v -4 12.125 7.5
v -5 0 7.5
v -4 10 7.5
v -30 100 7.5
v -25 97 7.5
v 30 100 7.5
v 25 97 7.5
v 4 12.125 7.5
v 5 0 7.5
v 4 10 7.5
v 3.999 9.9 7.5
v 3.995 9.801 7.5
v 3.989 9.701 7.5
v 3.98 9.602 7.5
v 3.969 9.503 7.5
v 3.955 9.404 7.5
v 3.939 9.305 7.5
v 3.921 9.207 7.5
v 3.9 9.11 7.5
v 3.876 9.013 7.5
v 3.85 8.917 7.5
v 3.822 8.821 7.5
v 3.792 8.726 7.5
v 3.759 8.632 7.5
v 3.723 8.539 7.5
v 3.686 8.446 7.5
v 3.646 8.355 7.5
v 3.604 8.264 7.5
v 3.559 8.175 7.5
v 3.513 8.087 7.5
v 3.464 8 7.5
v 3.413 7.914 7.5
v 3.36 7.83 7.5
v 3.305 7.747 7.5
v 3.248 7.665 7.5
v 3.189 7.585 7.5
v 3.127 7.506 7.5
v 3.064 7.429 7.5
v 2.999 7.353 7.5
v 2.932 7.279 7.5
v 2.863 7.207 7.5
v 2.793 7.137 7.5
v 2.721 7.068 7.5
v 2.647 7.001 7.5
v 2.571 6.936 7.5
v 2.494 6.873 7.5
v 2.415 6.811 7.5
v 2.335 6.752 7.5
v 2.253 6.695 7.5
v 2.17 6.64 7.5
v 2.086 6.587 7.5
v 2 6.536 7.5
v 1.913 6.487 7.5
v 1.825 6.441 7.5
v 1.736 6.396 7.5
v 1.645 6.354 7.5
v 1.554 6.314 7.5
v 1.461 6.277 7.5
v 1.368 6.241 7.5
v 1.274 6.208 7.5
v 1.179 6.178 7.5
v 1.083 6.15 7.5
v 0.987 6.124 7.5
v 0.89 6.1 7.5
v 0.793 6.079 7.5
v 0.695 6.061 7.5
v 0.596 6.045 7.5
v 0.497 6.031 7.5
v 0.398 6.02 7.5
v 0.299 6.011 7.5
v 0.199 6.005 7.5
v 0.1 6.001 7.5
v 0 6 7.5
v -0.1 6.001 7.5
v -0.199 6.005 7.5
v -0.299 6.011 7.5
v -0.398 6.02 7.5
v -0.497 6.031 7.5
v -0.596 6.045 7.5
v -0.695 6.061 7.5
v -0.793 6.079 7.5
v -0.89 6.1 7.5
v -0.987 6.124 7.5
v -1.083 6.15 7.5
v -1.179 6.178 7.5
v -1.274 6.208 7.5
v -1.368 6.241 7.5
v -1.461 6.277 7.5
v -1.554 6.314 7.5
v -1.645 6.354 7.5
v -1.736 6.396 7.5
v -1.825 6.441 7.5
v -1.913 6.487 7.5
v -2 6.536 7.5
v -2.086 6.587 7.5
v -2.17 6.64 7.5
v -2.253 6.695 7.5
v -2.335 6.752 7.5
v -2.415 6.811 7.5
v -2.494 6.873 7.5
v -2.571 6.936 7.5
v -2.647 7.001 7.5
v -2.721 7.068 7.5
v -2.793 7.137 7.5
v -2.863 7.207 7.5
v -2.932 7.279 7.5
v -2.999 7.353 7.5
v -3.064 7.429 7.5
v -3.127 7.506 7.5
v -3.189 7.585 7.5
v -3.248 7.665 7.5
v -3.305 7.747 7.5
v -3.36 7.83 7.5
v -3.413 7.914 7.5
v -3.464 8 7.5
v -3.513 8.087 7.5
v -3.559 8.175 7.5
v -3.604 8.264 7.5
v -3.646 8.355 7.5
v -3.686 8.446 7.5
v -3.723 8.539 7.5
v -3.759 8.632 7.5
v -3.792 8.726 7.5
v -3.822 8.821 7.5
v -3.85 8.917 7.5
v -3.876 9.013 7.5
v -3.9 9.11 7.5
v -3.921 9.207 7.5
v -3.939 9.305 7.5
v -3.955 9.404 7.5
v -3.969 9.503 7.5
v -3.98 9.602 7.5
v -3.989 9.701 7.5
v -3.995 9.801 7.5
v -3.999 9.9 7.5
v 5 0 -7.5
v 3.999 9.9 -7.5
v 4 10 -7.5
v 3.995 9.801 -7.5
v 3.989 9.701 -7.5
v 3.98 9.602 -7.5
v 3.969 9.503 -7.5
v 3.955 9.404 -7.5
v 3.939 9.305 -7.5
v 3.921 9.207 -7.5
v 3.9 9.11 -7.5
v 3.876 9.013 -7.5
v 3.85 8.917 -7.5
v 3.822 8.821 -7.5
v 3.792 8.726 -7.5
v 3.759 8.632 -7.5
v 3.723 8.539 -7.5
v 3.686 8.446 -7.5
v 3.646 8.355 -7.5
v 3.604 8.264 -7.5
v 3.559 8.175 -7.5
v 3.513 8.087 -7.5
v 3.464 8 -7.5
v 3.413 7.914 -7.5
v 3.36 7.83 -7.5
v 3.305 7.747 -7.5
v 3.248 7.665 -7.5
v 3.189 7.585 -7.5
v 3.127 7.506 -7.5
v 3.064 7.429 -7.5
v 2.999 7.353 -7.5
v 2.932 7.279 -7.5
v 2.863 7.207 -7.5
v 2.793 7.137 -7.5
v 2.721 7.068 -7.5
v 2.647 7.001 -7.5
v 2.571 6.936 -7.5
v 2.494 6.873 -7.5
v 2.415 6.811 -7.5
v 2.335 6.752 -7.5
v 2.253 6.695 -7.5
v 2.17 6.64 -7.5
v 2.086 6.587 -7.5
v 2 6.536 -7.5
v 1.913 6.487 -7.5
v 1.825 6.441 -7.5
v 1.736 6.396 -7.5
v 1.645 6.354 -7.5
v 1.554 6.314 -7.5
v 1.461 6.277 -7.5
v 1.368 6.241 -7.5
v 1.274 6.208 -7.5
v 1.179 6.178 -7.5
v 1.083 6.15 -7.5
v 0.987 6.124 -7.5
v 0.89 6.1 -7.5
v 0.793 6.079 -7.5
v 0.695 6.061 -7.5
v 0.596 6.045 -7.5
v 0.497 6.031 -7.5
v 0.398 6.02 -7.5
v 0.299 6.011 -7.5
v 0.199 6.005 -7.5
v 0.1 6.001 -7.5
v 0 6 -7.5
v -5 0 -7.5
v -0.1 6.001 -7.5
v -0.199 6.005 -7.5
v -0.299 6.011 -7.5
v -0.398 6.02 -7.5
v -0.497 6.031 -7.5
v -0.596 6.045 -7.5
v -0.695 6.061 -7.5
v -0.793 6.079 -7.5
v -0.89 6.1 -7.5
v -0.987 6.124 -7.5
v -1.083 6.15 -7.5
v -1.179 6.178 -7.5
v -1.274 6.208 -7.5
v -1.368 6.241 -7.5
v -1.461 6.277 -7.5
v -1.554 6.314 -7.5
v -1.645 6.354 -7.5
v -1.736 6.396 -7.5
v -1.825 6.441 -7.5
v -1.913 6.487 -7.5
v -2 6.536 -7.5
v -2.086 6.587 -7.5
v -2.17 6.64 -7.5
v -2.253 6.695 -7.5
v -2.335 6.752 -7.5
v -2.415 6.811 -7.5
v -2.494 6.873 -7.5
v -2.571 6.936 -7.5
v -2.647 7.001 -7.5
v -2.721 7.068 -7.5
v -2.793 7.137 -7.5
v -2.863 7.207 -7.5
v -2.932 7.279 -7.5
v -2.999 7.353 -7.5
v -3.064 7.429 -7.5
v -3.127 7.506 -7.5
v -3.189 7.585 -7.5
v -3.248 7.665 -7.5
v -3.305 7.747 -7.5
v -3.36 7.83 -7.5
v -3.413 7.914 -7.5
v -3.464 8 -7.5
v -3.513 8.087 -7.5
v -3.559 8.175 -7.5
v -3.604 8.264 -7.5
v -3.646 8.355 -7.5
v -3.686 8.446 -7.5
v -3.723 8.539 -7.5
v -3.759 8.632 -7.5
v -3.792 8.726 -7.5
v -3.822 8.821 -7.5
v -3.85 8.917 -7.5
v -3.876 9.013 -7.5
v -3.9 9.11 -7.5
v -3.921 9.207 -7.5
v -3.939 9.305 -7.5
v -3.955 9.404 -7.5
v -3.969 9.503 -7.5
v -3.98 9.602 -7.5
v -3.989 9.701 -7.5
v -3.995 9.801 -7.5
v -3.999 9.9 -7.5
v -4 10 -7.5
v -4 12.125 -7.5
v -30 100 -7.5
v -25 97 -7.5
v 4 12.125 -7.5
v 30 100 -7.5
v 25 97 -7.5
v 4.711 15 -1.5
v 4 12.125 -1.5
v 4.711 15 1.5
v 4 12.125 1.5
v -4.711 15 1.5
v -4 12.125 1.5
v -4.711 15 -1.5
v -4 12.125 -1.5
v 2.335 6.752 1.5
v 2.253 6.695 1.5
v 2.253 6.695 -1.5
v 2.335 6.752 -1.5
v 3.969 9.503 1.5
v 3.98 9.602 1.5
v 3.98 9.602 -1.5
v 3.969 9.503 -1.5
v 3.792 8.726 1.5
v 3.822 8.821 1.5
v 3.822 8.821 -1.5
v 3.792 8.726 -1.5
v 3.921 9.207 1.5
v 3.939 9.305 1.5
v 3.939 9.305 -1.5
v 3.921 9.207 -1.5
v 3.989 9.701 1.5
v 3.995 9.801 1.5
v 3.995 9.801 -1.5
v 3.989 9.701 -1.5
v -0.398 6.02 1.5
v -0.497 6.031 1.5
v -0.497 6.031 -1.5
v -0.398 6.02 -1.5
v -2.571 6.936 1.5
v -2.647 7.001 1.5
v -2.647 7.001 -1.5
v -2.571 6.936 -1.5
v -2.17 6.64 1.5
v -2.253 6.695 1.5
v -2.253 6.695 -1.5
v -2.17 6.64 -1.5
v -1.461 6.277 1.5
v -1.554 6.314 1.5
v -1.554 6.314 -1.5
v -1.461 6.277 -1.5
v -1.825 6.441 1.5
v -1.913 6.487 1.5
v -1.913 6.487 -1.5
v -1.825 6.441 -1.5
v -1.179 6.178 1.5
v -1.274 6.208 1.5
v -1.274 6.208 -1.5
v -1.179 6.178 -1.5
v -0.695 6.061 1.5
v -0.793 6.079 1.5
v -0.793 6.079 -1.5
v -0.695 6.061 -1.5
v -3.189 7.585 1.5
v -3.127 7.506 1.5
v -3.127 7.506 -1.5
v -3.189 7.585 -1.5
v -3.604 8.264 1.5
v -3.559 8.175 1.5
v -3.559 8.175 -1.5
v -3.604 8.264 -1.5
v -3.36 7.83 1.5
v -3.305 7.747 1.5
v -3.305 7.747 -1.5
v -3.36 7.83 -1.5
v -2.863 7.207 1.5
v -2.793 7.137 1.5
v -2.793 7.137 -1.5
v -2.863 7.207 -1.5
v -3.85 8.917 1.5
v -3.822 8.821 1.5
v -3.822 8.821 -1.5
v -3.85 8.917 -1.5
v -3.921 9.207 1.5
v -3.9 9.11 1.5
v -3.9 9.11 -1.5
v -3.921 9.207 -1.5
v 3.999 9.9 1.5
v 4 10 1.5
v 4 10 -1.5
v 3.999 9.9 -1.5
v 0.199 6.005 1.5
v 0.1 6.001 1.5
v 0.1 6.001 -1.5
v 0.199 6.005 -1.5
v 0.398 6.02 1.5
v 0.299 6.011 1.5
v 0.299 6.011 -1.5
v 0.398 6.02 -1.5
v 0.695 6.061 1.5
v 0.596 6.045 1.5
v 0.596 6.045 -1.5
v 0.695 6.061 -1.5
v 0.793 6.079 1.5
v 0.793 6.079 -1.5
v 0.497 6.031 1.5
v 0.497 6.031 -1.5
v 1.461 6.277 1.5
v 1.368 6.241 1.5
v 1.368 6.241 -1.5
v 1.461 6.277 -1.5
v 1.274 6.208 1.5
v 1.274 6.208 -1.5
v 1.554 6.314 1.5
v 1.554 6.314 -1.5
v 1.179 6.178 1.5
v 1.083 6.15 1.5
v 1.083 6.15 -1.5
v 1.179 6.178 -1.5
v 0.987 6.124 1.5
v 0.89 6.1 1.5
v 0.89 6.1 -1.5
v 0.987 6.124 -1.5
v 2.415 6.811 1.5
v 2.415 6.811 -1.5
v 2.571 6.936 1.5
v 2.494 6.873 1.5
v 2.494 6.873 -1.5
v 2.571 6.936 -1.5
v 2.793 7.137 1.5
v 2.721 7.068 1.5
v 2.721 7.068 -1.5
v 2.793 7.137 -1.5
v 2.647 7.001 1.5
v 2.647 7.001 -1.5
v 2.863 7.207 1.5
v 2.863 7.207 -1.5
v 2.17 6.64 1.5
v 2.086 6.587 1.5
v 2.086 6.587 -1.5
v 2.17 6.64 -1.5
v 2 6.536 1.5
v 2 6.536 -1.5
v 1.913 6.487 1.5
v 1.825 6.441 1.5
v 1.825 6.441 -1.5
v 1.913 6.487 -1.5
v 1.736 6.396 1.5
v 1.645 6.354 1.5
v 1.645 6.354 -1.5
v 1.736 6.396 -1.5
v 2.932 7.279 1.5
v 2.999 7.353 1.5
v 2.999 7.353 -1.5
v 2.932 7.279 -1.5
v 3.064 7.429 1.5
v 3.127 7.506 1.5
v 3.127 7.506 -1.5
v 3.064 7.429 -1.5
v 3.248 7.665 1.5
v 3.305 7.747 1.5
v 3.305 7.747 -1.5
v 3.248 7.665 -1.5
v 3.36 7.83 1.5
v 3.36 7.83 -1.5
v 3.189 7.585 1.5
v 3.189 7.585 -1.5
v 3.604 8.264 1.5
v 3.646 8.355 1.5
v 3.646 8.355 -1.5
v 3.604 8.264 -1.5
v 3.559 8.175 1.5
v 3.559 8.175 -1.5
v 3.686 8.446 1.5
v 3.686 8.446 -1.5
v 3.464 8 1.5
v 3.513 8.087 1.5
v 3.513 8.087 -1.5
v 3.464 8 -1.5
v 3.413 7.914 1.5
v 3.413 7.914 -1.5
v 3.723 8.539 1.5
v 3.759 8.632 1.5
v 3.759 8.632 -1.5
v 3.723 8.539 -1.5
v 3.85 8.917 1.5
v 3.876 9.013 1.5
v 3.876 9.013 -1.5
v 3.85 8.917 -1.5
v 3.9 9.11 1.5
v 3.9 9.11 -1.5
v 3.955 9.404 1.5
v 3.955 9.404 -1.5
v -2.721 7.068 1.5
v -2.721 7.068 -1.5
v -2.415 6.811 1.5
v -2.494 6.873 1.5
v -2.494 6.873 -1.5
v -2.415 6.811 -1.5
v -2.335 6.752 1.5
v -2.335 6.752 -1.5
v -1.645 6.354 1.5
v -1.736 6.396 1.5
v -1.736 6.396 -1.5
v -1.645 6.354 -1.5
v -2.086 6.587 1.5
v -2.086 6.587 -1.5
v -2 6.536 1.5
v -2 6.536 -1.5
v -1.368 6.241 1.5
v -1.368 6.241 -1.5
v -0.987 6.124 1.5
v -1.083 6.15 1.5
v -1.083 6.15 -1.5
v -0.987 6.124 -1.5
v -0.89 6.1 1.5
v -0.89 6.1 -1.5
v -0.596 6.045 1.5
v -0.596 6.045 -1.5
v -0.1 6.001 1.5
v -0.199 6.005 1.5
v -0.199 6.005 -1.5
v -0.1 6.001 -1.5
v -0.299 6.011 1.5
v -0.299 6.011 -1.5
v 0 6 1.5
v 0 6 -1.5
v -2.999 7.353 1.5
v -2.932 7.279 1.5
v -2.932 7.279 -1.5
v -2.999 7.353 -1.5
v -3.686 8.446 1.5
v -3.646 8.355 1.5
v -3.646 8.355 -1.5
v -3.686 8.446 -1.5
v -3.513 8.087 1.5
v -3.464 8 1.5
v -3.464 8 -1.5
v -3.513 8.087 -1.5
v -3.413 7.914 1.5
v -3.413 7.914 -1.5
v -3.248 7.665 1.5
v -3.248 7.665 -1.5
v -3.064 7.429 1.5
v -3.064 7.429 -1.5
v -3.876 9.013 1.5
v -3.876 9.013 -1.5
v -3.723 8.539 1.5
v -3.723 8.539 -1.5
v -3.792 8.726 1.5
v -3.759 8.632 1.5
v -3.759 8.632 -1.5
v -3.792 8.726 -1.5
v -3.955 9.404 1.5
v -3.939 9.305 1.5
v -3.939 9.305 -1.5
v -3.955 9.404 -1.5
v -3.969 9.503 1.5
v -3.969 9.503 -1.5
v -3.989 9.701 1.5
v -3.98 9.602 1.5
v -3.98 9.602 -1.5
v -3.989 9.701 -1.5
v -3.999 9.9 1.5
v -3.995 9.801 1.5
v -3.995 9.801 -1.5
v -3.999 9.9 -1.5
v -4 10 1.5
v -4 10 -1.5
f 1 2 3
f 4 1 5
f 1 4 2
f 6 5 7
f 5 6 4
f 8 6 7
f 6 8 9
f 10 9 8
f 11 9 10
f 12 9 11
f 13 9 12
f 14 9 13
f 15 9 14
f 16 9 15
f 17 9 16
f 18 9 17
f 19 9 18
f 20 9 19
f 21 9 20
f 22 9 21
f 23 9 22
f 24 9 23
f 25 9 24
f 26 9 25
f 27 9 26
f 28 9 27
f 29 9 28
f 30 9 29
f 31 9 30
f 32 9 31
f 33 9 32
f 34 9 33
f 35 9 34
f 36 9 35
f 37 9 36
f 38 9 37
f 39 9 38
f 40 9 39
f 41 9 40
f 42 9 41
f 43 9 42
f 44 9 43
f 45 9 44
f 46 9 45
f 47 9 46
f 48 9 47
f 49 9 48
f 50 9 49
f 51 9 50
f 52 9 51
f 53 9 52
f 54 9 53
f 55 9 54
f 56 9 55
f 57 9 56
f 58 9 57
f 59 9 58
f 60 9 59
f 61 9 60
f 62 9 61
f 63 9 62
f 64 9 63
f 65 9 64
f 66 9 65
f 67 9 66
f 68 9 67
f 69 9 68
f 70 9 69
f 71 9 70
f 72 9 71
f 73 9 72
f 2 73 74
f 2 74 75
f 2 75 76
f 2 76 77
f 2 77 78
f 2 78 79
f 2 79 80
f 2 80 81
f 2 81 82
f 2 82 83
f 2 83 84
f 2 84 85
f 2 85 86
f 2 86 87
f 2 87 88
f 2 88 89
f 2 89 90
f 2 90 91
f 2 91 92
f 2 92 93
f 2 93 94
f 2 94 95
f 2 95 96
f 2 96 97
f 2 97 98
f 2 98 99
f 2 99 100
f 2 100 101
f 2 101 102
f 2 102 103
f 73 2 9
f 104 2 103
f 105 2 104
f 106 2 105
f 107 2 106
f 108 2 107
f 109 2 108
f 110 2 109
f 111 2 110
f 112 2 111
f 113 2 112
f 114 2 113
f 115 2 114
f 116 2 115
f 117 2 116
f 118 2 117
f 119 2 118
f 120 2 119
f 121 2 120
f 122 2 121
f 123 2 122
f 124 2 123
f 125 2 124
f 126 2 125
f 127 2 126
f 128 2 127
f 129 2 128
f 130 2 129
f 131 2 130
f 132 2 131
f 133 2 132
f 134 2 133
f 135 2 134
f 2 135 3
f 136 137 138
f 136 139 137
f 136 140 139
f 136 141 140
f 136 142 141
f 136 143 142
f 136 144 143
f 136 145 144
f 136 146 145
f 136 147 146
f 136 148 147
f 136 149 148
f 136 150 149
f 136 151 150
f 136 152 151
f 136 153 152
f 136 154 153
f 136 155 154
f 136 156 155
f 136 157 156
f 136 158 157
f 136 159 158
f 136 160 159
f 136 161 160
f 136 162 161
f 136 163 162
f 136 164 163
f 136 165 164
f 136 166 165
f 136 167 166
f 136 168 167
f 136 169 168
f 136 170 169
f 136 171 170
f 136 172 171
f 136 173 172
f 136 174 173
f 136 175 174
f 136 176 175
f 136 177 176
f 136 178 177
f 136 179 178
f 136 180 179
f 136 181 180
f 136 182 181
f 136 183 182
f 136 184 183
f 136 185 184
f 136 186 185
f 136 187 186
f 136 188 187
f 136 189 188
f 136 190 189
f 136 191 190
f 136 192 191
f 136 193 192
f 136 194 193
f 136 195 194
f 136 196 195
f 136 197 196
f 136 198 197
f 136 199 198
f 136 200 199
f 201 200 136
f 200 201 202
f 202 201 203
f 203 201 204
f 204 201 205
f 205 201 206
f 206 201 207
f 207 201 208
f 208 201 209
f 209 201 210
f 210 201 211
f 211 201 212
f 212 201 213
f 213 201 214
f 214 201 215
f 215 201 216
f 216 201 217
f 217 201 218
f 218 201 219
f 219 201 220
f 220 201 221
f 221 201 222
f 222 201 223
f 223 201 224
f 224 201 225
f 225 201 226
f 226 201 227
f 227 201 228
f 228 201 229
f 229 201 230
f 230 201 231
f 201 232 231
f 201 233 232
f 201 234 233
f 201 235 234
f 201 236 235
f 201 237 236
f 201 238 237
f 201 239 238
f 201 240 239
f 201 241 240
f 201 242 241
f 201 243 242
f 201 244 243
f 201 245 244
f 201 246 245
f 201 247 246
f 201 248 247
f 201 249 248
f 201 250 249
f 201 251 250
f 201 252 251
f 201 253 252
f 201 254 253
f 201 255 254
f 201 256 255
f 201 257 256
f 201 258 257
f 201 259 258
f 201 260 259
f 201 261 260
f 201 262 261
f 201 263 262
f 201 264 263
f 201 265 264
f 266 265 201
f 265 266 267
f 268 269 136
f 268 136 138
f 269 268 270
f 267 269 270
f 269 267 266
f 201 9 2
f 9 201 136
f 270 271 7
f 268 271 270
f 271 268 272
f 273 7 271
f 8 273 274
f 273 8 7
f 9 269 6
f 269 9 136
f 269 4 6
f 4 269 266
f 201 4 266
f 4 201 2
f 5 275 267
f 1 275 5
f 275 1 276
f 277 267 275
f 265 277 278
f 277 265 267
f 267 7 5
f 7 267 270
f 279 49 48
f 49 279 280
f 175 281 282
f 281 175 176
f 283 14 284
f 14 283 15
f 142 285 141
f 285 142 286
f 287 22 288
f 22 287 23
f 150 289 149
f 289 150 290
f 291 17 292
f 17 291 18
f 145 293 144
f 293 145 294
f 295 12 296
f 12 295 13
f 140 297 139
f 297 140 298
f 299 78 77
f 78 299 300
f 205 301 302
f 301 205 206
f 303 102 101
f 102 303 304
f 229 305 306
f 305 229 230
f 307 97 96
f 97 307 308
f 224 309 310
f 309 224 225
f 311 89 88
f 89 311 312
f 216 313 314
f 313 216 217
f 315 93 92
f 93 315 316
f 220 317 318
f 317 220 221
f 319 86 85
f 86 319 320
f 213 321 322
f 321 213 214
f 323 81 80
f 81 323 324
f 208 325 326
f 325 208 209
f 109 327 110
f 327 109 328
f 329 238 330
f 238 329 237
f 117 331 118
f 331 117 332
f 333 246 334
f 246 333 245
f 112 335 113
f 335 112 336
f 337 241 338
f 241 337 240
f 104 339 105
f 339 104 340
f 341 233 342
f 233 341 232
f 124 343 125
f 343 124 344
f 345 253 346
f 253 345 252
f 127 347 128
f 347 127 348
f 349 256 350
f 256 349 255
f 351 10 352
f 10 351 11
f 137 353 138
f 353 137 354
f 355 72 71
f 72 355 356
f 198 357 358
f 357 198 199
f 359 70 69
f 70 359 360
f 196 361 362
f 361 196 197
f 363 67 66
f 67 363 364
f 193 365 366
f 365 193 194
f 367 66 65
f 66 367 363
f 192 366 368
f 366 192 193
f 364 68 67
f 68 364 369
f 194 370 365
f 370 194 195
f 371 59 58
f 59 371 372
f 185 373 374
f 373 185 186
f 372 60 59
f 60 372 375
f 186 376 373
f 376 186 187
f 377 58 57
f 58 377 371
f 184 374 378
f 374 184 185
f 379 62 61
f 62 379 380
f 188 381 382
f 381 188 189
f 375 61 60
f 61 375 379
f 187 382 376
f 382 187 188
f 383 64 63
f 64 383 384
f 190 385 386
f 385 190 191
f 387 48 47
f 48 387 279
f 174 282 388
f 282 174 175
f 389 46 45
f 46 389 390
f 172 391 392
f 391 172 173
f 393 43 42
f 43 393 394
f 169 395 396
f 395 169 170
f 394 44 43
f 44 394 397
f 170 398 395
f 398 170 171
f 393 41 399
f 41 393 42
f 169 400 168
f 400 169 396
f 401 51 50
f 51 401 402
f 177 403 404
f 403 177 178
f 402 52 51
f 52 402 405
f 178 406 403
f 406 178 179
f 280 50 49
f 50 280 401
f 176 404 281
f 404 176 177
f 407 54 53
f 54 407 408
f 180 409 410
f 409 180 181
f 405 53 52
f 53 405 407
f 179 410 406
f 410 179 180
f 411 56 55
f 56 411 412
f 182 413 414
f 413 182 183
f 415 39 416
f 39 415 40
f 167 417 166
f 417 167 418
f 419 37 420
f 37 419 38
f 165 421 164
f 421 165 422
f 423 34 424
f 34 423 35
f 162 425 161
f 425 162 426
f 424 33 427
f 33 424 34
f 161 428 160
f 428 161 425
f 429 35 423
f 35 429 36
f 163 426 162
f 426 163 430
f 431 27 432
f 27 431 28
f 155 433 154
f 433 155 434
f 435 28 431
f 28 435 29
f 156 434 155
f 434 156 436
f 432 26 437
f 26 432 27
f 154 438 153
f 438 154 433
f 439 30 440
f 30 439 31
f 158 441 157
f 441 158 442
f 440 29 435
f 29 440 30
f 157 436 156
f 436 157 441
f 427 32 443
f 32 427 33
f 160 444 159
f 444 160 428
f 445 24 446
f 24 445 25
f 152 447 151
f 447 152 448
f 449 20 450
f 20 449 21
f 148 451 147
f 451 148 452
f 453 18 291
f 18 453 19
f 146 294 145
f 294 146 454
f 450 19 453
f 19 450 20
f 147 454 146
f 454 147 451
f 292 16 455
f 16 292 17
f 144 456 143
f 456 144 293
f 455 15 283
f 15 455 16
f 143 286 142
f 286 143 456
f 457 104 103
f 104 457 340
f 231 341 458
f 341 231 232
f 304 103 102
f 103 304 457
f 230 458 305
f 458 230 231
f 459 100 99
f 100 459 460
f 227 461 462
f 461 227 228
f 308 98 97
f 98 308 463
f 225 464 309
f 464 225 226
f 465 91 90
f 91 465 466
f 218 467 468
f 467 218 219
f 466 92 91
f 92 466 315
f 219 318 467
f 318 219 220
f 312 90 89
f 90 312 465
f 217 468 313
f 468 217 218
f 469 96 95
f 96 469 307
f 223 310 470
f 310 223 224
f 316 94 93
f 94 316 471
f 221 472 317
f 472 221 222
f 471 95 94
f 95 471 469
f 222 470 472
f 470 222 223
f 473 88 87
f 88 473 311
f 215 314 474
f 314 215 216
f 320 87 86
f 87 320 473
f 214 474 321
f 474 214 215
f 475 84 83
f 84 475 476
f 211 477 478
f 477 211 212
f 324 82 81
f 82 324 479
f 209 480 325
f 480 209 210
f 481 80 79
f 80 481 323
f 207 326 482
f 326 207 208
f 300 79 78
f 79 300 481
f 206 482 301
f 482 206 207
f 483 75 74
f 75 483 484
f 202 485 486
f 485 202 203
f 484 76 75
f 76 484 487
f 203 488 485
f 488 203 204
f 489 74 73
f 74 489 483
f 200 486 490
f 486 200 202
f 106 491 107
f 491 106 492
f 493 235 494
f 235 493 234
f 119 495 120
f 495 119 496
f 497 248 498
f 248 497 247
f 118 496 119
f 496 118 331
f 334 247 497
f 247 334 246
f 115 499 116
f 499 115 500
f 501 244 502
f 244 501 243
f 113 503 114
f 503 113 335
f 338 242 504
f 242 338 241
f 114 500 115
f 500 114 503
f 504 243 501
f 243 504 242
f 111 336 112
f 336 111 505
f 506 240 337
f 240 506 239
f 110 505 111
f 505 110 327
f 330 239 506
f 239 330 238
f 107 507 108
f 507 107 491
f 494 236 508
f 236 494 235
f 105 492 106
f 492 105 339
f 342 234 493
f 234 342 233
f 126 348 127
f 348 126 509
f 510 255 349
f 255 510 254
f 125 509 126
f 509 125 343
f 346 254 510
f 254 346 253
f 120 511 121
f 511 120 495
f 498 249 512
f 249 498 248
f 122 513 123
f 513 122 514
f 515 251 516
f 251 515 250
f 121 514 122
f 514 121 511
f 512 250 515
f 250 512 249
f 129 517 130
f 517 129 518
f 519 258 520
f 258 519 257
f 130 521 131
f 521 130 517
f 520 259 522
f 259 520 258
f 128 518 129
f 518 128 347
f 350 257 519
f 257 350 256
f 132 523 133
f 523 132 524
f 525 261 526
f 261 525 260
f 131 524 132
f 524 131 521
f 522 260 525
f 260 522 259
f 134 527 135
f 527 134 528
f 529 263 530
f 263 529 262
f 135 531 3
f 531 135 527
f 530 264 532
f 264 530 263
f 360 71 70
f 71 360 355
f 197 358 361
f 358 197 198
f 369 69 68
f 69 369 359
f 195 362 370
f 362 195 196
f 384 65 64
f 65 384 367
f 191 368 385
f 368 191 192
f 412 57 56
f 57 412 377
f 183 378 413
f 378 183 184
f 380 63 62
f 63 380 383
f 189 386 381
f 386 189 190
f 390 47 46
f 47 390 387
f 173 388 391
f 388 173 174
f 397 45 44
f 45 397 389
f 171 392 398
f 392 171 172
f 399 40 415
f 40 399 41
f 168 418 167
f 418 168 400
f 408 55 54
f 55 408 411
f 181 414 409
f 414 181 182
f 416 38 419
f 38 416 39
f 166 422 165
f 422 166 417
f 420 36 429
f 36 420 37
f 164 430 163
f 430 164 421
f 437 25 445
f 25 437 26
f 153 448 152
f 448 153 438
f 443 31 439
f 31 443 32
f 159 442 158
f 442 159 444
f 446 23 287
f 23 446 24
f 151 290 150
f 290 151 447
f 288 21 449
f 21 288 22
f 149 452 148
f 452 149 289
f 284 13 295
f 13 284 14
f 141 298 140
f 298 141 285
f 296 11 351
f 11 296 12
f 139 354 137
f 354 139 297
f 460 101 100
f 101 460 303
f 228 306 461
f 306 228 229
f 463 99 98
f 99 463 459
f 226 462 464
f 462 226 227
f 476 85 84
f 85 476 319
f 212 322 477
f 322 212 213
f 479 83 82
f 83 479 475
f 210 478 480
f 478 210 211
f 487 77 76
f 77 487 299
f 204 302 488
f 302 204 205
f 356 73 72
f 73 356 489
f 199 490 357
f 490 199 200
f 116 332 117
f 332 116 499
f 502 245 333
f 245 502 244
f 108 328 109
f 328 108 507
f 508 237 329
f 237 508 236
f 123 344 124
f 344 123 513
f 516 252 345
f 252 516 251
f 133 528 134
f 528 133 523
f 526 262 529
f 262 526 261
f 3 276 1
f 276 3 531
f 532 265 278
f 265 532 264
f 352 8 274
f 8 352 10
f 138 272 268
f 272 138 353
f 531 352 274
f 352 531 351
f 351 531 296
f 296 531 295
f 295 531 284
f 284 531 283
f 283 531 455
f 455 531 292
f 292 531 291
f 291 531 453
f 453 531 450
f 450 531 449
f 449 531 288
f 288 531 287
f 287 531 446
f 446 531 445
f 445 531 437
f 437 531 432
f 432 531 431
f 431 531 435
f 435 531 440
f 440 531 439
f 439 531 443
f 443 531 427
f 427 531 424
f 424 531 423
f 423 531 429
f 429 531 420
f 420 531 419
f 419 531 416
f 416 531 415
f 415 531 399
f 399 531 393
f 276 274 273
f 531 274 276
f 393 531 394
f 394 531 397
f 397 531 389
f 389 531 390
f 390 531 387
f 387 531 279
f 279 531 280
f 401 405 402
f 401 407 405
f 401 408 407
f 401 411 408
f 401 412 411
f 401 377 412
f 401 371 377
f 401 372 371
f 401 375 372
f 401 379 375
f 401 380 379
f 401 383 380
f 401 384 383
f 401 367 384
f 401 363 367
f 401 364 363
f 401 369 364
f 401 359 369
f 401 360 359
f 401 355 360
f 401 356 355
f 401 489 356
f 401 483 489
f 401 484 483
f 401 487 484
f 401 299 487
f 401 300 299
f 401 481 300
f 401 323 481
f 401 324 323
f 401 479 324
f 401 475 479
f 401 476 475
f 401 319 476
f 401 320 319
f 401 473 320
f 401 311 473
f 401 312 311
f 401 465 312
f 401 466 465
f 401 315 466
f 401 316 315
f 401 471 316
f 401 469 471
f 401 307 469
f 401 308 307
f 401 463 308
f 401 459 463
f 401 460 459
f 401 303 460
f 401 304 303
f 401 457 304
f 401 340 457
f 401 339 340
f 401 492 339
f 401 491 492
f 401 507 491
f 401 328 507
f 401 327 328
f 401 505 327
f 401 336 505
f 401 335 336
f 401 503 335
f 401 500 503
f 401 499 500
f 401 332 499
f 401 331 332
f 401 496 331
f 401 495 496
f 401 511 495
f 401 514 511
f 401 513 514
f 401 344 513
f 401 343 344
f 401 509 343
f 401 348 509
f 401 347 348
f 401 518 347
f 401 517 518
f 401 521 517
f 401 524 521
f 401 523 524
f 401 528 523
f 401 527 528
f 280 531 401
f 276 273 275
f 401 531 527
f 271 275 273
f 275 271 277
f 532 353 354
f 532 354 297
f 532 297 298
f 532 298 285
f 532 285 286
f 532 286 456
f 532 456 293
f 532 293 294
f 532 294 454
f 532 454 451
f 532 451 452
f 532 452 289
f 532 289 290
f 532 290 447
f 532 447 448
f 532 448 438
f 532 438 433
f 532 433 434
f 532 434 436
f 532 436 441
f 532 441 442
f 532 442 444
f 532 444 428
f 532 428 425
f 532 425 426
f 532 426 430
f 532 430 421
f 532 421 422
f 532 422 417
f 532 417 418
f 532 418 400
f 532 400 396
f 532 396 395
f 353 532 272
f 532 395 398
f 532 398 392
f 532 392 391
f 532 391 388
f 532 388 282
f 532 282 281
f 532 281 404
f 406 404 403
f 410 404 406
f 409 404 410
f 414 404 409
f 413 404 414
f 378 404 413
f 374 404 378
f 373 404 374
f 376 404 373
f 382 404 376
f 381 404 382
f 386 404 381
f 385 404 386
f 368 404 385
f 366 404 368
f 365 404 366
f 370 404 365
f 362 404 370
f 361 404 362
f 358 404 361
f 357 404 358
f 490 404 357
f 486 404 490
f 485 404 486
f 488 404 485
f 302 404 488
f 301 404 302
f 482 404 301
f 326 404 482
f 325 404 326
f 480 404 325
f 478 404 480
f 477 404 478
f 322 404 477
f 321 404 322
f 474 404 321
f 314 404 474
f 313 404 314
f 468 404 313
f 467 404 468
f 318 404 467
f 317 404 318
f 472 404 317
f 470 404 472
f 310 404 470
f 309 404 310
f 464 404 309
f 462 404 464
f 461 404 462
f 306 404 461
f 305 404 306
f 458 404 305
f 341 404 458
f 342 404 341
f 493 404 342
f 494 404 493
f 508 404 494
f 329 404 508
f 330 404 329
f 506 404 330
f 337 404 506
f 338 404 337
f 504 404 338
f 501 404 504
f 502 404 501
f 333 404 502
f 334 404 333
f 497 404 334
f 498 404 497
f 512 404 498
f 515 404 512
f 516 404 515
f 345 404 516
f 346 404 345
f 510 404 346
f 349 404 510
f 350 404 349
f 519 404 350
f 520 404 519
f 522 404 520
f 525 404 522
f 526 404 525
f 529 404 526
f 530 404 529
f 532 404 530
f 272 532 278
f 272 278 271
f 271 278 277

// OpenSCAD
$fa =.1;
$fs =.1;

module segA() {
	translate([0,0,-7.5]) {
		translate([-5,0,0]) cube([10,10,15]);
		linear_extrude(15) {
			difference() {
				polygon([[-5,0],[-30,100],[30,100],[5,0]]);
				polygon([[-1,0],[-25,97],[25,97],[1,0]]);
			}
		}
	}
}


union() {
	translate([-5,0,-1.5]) cube([10,15,3]);
	difference() {
		segA();
		translate([0,10,-10])  cylinder(20,4,4);
		translate([-4,10,-10]) cube([8,20,20]);
		
	}
}
